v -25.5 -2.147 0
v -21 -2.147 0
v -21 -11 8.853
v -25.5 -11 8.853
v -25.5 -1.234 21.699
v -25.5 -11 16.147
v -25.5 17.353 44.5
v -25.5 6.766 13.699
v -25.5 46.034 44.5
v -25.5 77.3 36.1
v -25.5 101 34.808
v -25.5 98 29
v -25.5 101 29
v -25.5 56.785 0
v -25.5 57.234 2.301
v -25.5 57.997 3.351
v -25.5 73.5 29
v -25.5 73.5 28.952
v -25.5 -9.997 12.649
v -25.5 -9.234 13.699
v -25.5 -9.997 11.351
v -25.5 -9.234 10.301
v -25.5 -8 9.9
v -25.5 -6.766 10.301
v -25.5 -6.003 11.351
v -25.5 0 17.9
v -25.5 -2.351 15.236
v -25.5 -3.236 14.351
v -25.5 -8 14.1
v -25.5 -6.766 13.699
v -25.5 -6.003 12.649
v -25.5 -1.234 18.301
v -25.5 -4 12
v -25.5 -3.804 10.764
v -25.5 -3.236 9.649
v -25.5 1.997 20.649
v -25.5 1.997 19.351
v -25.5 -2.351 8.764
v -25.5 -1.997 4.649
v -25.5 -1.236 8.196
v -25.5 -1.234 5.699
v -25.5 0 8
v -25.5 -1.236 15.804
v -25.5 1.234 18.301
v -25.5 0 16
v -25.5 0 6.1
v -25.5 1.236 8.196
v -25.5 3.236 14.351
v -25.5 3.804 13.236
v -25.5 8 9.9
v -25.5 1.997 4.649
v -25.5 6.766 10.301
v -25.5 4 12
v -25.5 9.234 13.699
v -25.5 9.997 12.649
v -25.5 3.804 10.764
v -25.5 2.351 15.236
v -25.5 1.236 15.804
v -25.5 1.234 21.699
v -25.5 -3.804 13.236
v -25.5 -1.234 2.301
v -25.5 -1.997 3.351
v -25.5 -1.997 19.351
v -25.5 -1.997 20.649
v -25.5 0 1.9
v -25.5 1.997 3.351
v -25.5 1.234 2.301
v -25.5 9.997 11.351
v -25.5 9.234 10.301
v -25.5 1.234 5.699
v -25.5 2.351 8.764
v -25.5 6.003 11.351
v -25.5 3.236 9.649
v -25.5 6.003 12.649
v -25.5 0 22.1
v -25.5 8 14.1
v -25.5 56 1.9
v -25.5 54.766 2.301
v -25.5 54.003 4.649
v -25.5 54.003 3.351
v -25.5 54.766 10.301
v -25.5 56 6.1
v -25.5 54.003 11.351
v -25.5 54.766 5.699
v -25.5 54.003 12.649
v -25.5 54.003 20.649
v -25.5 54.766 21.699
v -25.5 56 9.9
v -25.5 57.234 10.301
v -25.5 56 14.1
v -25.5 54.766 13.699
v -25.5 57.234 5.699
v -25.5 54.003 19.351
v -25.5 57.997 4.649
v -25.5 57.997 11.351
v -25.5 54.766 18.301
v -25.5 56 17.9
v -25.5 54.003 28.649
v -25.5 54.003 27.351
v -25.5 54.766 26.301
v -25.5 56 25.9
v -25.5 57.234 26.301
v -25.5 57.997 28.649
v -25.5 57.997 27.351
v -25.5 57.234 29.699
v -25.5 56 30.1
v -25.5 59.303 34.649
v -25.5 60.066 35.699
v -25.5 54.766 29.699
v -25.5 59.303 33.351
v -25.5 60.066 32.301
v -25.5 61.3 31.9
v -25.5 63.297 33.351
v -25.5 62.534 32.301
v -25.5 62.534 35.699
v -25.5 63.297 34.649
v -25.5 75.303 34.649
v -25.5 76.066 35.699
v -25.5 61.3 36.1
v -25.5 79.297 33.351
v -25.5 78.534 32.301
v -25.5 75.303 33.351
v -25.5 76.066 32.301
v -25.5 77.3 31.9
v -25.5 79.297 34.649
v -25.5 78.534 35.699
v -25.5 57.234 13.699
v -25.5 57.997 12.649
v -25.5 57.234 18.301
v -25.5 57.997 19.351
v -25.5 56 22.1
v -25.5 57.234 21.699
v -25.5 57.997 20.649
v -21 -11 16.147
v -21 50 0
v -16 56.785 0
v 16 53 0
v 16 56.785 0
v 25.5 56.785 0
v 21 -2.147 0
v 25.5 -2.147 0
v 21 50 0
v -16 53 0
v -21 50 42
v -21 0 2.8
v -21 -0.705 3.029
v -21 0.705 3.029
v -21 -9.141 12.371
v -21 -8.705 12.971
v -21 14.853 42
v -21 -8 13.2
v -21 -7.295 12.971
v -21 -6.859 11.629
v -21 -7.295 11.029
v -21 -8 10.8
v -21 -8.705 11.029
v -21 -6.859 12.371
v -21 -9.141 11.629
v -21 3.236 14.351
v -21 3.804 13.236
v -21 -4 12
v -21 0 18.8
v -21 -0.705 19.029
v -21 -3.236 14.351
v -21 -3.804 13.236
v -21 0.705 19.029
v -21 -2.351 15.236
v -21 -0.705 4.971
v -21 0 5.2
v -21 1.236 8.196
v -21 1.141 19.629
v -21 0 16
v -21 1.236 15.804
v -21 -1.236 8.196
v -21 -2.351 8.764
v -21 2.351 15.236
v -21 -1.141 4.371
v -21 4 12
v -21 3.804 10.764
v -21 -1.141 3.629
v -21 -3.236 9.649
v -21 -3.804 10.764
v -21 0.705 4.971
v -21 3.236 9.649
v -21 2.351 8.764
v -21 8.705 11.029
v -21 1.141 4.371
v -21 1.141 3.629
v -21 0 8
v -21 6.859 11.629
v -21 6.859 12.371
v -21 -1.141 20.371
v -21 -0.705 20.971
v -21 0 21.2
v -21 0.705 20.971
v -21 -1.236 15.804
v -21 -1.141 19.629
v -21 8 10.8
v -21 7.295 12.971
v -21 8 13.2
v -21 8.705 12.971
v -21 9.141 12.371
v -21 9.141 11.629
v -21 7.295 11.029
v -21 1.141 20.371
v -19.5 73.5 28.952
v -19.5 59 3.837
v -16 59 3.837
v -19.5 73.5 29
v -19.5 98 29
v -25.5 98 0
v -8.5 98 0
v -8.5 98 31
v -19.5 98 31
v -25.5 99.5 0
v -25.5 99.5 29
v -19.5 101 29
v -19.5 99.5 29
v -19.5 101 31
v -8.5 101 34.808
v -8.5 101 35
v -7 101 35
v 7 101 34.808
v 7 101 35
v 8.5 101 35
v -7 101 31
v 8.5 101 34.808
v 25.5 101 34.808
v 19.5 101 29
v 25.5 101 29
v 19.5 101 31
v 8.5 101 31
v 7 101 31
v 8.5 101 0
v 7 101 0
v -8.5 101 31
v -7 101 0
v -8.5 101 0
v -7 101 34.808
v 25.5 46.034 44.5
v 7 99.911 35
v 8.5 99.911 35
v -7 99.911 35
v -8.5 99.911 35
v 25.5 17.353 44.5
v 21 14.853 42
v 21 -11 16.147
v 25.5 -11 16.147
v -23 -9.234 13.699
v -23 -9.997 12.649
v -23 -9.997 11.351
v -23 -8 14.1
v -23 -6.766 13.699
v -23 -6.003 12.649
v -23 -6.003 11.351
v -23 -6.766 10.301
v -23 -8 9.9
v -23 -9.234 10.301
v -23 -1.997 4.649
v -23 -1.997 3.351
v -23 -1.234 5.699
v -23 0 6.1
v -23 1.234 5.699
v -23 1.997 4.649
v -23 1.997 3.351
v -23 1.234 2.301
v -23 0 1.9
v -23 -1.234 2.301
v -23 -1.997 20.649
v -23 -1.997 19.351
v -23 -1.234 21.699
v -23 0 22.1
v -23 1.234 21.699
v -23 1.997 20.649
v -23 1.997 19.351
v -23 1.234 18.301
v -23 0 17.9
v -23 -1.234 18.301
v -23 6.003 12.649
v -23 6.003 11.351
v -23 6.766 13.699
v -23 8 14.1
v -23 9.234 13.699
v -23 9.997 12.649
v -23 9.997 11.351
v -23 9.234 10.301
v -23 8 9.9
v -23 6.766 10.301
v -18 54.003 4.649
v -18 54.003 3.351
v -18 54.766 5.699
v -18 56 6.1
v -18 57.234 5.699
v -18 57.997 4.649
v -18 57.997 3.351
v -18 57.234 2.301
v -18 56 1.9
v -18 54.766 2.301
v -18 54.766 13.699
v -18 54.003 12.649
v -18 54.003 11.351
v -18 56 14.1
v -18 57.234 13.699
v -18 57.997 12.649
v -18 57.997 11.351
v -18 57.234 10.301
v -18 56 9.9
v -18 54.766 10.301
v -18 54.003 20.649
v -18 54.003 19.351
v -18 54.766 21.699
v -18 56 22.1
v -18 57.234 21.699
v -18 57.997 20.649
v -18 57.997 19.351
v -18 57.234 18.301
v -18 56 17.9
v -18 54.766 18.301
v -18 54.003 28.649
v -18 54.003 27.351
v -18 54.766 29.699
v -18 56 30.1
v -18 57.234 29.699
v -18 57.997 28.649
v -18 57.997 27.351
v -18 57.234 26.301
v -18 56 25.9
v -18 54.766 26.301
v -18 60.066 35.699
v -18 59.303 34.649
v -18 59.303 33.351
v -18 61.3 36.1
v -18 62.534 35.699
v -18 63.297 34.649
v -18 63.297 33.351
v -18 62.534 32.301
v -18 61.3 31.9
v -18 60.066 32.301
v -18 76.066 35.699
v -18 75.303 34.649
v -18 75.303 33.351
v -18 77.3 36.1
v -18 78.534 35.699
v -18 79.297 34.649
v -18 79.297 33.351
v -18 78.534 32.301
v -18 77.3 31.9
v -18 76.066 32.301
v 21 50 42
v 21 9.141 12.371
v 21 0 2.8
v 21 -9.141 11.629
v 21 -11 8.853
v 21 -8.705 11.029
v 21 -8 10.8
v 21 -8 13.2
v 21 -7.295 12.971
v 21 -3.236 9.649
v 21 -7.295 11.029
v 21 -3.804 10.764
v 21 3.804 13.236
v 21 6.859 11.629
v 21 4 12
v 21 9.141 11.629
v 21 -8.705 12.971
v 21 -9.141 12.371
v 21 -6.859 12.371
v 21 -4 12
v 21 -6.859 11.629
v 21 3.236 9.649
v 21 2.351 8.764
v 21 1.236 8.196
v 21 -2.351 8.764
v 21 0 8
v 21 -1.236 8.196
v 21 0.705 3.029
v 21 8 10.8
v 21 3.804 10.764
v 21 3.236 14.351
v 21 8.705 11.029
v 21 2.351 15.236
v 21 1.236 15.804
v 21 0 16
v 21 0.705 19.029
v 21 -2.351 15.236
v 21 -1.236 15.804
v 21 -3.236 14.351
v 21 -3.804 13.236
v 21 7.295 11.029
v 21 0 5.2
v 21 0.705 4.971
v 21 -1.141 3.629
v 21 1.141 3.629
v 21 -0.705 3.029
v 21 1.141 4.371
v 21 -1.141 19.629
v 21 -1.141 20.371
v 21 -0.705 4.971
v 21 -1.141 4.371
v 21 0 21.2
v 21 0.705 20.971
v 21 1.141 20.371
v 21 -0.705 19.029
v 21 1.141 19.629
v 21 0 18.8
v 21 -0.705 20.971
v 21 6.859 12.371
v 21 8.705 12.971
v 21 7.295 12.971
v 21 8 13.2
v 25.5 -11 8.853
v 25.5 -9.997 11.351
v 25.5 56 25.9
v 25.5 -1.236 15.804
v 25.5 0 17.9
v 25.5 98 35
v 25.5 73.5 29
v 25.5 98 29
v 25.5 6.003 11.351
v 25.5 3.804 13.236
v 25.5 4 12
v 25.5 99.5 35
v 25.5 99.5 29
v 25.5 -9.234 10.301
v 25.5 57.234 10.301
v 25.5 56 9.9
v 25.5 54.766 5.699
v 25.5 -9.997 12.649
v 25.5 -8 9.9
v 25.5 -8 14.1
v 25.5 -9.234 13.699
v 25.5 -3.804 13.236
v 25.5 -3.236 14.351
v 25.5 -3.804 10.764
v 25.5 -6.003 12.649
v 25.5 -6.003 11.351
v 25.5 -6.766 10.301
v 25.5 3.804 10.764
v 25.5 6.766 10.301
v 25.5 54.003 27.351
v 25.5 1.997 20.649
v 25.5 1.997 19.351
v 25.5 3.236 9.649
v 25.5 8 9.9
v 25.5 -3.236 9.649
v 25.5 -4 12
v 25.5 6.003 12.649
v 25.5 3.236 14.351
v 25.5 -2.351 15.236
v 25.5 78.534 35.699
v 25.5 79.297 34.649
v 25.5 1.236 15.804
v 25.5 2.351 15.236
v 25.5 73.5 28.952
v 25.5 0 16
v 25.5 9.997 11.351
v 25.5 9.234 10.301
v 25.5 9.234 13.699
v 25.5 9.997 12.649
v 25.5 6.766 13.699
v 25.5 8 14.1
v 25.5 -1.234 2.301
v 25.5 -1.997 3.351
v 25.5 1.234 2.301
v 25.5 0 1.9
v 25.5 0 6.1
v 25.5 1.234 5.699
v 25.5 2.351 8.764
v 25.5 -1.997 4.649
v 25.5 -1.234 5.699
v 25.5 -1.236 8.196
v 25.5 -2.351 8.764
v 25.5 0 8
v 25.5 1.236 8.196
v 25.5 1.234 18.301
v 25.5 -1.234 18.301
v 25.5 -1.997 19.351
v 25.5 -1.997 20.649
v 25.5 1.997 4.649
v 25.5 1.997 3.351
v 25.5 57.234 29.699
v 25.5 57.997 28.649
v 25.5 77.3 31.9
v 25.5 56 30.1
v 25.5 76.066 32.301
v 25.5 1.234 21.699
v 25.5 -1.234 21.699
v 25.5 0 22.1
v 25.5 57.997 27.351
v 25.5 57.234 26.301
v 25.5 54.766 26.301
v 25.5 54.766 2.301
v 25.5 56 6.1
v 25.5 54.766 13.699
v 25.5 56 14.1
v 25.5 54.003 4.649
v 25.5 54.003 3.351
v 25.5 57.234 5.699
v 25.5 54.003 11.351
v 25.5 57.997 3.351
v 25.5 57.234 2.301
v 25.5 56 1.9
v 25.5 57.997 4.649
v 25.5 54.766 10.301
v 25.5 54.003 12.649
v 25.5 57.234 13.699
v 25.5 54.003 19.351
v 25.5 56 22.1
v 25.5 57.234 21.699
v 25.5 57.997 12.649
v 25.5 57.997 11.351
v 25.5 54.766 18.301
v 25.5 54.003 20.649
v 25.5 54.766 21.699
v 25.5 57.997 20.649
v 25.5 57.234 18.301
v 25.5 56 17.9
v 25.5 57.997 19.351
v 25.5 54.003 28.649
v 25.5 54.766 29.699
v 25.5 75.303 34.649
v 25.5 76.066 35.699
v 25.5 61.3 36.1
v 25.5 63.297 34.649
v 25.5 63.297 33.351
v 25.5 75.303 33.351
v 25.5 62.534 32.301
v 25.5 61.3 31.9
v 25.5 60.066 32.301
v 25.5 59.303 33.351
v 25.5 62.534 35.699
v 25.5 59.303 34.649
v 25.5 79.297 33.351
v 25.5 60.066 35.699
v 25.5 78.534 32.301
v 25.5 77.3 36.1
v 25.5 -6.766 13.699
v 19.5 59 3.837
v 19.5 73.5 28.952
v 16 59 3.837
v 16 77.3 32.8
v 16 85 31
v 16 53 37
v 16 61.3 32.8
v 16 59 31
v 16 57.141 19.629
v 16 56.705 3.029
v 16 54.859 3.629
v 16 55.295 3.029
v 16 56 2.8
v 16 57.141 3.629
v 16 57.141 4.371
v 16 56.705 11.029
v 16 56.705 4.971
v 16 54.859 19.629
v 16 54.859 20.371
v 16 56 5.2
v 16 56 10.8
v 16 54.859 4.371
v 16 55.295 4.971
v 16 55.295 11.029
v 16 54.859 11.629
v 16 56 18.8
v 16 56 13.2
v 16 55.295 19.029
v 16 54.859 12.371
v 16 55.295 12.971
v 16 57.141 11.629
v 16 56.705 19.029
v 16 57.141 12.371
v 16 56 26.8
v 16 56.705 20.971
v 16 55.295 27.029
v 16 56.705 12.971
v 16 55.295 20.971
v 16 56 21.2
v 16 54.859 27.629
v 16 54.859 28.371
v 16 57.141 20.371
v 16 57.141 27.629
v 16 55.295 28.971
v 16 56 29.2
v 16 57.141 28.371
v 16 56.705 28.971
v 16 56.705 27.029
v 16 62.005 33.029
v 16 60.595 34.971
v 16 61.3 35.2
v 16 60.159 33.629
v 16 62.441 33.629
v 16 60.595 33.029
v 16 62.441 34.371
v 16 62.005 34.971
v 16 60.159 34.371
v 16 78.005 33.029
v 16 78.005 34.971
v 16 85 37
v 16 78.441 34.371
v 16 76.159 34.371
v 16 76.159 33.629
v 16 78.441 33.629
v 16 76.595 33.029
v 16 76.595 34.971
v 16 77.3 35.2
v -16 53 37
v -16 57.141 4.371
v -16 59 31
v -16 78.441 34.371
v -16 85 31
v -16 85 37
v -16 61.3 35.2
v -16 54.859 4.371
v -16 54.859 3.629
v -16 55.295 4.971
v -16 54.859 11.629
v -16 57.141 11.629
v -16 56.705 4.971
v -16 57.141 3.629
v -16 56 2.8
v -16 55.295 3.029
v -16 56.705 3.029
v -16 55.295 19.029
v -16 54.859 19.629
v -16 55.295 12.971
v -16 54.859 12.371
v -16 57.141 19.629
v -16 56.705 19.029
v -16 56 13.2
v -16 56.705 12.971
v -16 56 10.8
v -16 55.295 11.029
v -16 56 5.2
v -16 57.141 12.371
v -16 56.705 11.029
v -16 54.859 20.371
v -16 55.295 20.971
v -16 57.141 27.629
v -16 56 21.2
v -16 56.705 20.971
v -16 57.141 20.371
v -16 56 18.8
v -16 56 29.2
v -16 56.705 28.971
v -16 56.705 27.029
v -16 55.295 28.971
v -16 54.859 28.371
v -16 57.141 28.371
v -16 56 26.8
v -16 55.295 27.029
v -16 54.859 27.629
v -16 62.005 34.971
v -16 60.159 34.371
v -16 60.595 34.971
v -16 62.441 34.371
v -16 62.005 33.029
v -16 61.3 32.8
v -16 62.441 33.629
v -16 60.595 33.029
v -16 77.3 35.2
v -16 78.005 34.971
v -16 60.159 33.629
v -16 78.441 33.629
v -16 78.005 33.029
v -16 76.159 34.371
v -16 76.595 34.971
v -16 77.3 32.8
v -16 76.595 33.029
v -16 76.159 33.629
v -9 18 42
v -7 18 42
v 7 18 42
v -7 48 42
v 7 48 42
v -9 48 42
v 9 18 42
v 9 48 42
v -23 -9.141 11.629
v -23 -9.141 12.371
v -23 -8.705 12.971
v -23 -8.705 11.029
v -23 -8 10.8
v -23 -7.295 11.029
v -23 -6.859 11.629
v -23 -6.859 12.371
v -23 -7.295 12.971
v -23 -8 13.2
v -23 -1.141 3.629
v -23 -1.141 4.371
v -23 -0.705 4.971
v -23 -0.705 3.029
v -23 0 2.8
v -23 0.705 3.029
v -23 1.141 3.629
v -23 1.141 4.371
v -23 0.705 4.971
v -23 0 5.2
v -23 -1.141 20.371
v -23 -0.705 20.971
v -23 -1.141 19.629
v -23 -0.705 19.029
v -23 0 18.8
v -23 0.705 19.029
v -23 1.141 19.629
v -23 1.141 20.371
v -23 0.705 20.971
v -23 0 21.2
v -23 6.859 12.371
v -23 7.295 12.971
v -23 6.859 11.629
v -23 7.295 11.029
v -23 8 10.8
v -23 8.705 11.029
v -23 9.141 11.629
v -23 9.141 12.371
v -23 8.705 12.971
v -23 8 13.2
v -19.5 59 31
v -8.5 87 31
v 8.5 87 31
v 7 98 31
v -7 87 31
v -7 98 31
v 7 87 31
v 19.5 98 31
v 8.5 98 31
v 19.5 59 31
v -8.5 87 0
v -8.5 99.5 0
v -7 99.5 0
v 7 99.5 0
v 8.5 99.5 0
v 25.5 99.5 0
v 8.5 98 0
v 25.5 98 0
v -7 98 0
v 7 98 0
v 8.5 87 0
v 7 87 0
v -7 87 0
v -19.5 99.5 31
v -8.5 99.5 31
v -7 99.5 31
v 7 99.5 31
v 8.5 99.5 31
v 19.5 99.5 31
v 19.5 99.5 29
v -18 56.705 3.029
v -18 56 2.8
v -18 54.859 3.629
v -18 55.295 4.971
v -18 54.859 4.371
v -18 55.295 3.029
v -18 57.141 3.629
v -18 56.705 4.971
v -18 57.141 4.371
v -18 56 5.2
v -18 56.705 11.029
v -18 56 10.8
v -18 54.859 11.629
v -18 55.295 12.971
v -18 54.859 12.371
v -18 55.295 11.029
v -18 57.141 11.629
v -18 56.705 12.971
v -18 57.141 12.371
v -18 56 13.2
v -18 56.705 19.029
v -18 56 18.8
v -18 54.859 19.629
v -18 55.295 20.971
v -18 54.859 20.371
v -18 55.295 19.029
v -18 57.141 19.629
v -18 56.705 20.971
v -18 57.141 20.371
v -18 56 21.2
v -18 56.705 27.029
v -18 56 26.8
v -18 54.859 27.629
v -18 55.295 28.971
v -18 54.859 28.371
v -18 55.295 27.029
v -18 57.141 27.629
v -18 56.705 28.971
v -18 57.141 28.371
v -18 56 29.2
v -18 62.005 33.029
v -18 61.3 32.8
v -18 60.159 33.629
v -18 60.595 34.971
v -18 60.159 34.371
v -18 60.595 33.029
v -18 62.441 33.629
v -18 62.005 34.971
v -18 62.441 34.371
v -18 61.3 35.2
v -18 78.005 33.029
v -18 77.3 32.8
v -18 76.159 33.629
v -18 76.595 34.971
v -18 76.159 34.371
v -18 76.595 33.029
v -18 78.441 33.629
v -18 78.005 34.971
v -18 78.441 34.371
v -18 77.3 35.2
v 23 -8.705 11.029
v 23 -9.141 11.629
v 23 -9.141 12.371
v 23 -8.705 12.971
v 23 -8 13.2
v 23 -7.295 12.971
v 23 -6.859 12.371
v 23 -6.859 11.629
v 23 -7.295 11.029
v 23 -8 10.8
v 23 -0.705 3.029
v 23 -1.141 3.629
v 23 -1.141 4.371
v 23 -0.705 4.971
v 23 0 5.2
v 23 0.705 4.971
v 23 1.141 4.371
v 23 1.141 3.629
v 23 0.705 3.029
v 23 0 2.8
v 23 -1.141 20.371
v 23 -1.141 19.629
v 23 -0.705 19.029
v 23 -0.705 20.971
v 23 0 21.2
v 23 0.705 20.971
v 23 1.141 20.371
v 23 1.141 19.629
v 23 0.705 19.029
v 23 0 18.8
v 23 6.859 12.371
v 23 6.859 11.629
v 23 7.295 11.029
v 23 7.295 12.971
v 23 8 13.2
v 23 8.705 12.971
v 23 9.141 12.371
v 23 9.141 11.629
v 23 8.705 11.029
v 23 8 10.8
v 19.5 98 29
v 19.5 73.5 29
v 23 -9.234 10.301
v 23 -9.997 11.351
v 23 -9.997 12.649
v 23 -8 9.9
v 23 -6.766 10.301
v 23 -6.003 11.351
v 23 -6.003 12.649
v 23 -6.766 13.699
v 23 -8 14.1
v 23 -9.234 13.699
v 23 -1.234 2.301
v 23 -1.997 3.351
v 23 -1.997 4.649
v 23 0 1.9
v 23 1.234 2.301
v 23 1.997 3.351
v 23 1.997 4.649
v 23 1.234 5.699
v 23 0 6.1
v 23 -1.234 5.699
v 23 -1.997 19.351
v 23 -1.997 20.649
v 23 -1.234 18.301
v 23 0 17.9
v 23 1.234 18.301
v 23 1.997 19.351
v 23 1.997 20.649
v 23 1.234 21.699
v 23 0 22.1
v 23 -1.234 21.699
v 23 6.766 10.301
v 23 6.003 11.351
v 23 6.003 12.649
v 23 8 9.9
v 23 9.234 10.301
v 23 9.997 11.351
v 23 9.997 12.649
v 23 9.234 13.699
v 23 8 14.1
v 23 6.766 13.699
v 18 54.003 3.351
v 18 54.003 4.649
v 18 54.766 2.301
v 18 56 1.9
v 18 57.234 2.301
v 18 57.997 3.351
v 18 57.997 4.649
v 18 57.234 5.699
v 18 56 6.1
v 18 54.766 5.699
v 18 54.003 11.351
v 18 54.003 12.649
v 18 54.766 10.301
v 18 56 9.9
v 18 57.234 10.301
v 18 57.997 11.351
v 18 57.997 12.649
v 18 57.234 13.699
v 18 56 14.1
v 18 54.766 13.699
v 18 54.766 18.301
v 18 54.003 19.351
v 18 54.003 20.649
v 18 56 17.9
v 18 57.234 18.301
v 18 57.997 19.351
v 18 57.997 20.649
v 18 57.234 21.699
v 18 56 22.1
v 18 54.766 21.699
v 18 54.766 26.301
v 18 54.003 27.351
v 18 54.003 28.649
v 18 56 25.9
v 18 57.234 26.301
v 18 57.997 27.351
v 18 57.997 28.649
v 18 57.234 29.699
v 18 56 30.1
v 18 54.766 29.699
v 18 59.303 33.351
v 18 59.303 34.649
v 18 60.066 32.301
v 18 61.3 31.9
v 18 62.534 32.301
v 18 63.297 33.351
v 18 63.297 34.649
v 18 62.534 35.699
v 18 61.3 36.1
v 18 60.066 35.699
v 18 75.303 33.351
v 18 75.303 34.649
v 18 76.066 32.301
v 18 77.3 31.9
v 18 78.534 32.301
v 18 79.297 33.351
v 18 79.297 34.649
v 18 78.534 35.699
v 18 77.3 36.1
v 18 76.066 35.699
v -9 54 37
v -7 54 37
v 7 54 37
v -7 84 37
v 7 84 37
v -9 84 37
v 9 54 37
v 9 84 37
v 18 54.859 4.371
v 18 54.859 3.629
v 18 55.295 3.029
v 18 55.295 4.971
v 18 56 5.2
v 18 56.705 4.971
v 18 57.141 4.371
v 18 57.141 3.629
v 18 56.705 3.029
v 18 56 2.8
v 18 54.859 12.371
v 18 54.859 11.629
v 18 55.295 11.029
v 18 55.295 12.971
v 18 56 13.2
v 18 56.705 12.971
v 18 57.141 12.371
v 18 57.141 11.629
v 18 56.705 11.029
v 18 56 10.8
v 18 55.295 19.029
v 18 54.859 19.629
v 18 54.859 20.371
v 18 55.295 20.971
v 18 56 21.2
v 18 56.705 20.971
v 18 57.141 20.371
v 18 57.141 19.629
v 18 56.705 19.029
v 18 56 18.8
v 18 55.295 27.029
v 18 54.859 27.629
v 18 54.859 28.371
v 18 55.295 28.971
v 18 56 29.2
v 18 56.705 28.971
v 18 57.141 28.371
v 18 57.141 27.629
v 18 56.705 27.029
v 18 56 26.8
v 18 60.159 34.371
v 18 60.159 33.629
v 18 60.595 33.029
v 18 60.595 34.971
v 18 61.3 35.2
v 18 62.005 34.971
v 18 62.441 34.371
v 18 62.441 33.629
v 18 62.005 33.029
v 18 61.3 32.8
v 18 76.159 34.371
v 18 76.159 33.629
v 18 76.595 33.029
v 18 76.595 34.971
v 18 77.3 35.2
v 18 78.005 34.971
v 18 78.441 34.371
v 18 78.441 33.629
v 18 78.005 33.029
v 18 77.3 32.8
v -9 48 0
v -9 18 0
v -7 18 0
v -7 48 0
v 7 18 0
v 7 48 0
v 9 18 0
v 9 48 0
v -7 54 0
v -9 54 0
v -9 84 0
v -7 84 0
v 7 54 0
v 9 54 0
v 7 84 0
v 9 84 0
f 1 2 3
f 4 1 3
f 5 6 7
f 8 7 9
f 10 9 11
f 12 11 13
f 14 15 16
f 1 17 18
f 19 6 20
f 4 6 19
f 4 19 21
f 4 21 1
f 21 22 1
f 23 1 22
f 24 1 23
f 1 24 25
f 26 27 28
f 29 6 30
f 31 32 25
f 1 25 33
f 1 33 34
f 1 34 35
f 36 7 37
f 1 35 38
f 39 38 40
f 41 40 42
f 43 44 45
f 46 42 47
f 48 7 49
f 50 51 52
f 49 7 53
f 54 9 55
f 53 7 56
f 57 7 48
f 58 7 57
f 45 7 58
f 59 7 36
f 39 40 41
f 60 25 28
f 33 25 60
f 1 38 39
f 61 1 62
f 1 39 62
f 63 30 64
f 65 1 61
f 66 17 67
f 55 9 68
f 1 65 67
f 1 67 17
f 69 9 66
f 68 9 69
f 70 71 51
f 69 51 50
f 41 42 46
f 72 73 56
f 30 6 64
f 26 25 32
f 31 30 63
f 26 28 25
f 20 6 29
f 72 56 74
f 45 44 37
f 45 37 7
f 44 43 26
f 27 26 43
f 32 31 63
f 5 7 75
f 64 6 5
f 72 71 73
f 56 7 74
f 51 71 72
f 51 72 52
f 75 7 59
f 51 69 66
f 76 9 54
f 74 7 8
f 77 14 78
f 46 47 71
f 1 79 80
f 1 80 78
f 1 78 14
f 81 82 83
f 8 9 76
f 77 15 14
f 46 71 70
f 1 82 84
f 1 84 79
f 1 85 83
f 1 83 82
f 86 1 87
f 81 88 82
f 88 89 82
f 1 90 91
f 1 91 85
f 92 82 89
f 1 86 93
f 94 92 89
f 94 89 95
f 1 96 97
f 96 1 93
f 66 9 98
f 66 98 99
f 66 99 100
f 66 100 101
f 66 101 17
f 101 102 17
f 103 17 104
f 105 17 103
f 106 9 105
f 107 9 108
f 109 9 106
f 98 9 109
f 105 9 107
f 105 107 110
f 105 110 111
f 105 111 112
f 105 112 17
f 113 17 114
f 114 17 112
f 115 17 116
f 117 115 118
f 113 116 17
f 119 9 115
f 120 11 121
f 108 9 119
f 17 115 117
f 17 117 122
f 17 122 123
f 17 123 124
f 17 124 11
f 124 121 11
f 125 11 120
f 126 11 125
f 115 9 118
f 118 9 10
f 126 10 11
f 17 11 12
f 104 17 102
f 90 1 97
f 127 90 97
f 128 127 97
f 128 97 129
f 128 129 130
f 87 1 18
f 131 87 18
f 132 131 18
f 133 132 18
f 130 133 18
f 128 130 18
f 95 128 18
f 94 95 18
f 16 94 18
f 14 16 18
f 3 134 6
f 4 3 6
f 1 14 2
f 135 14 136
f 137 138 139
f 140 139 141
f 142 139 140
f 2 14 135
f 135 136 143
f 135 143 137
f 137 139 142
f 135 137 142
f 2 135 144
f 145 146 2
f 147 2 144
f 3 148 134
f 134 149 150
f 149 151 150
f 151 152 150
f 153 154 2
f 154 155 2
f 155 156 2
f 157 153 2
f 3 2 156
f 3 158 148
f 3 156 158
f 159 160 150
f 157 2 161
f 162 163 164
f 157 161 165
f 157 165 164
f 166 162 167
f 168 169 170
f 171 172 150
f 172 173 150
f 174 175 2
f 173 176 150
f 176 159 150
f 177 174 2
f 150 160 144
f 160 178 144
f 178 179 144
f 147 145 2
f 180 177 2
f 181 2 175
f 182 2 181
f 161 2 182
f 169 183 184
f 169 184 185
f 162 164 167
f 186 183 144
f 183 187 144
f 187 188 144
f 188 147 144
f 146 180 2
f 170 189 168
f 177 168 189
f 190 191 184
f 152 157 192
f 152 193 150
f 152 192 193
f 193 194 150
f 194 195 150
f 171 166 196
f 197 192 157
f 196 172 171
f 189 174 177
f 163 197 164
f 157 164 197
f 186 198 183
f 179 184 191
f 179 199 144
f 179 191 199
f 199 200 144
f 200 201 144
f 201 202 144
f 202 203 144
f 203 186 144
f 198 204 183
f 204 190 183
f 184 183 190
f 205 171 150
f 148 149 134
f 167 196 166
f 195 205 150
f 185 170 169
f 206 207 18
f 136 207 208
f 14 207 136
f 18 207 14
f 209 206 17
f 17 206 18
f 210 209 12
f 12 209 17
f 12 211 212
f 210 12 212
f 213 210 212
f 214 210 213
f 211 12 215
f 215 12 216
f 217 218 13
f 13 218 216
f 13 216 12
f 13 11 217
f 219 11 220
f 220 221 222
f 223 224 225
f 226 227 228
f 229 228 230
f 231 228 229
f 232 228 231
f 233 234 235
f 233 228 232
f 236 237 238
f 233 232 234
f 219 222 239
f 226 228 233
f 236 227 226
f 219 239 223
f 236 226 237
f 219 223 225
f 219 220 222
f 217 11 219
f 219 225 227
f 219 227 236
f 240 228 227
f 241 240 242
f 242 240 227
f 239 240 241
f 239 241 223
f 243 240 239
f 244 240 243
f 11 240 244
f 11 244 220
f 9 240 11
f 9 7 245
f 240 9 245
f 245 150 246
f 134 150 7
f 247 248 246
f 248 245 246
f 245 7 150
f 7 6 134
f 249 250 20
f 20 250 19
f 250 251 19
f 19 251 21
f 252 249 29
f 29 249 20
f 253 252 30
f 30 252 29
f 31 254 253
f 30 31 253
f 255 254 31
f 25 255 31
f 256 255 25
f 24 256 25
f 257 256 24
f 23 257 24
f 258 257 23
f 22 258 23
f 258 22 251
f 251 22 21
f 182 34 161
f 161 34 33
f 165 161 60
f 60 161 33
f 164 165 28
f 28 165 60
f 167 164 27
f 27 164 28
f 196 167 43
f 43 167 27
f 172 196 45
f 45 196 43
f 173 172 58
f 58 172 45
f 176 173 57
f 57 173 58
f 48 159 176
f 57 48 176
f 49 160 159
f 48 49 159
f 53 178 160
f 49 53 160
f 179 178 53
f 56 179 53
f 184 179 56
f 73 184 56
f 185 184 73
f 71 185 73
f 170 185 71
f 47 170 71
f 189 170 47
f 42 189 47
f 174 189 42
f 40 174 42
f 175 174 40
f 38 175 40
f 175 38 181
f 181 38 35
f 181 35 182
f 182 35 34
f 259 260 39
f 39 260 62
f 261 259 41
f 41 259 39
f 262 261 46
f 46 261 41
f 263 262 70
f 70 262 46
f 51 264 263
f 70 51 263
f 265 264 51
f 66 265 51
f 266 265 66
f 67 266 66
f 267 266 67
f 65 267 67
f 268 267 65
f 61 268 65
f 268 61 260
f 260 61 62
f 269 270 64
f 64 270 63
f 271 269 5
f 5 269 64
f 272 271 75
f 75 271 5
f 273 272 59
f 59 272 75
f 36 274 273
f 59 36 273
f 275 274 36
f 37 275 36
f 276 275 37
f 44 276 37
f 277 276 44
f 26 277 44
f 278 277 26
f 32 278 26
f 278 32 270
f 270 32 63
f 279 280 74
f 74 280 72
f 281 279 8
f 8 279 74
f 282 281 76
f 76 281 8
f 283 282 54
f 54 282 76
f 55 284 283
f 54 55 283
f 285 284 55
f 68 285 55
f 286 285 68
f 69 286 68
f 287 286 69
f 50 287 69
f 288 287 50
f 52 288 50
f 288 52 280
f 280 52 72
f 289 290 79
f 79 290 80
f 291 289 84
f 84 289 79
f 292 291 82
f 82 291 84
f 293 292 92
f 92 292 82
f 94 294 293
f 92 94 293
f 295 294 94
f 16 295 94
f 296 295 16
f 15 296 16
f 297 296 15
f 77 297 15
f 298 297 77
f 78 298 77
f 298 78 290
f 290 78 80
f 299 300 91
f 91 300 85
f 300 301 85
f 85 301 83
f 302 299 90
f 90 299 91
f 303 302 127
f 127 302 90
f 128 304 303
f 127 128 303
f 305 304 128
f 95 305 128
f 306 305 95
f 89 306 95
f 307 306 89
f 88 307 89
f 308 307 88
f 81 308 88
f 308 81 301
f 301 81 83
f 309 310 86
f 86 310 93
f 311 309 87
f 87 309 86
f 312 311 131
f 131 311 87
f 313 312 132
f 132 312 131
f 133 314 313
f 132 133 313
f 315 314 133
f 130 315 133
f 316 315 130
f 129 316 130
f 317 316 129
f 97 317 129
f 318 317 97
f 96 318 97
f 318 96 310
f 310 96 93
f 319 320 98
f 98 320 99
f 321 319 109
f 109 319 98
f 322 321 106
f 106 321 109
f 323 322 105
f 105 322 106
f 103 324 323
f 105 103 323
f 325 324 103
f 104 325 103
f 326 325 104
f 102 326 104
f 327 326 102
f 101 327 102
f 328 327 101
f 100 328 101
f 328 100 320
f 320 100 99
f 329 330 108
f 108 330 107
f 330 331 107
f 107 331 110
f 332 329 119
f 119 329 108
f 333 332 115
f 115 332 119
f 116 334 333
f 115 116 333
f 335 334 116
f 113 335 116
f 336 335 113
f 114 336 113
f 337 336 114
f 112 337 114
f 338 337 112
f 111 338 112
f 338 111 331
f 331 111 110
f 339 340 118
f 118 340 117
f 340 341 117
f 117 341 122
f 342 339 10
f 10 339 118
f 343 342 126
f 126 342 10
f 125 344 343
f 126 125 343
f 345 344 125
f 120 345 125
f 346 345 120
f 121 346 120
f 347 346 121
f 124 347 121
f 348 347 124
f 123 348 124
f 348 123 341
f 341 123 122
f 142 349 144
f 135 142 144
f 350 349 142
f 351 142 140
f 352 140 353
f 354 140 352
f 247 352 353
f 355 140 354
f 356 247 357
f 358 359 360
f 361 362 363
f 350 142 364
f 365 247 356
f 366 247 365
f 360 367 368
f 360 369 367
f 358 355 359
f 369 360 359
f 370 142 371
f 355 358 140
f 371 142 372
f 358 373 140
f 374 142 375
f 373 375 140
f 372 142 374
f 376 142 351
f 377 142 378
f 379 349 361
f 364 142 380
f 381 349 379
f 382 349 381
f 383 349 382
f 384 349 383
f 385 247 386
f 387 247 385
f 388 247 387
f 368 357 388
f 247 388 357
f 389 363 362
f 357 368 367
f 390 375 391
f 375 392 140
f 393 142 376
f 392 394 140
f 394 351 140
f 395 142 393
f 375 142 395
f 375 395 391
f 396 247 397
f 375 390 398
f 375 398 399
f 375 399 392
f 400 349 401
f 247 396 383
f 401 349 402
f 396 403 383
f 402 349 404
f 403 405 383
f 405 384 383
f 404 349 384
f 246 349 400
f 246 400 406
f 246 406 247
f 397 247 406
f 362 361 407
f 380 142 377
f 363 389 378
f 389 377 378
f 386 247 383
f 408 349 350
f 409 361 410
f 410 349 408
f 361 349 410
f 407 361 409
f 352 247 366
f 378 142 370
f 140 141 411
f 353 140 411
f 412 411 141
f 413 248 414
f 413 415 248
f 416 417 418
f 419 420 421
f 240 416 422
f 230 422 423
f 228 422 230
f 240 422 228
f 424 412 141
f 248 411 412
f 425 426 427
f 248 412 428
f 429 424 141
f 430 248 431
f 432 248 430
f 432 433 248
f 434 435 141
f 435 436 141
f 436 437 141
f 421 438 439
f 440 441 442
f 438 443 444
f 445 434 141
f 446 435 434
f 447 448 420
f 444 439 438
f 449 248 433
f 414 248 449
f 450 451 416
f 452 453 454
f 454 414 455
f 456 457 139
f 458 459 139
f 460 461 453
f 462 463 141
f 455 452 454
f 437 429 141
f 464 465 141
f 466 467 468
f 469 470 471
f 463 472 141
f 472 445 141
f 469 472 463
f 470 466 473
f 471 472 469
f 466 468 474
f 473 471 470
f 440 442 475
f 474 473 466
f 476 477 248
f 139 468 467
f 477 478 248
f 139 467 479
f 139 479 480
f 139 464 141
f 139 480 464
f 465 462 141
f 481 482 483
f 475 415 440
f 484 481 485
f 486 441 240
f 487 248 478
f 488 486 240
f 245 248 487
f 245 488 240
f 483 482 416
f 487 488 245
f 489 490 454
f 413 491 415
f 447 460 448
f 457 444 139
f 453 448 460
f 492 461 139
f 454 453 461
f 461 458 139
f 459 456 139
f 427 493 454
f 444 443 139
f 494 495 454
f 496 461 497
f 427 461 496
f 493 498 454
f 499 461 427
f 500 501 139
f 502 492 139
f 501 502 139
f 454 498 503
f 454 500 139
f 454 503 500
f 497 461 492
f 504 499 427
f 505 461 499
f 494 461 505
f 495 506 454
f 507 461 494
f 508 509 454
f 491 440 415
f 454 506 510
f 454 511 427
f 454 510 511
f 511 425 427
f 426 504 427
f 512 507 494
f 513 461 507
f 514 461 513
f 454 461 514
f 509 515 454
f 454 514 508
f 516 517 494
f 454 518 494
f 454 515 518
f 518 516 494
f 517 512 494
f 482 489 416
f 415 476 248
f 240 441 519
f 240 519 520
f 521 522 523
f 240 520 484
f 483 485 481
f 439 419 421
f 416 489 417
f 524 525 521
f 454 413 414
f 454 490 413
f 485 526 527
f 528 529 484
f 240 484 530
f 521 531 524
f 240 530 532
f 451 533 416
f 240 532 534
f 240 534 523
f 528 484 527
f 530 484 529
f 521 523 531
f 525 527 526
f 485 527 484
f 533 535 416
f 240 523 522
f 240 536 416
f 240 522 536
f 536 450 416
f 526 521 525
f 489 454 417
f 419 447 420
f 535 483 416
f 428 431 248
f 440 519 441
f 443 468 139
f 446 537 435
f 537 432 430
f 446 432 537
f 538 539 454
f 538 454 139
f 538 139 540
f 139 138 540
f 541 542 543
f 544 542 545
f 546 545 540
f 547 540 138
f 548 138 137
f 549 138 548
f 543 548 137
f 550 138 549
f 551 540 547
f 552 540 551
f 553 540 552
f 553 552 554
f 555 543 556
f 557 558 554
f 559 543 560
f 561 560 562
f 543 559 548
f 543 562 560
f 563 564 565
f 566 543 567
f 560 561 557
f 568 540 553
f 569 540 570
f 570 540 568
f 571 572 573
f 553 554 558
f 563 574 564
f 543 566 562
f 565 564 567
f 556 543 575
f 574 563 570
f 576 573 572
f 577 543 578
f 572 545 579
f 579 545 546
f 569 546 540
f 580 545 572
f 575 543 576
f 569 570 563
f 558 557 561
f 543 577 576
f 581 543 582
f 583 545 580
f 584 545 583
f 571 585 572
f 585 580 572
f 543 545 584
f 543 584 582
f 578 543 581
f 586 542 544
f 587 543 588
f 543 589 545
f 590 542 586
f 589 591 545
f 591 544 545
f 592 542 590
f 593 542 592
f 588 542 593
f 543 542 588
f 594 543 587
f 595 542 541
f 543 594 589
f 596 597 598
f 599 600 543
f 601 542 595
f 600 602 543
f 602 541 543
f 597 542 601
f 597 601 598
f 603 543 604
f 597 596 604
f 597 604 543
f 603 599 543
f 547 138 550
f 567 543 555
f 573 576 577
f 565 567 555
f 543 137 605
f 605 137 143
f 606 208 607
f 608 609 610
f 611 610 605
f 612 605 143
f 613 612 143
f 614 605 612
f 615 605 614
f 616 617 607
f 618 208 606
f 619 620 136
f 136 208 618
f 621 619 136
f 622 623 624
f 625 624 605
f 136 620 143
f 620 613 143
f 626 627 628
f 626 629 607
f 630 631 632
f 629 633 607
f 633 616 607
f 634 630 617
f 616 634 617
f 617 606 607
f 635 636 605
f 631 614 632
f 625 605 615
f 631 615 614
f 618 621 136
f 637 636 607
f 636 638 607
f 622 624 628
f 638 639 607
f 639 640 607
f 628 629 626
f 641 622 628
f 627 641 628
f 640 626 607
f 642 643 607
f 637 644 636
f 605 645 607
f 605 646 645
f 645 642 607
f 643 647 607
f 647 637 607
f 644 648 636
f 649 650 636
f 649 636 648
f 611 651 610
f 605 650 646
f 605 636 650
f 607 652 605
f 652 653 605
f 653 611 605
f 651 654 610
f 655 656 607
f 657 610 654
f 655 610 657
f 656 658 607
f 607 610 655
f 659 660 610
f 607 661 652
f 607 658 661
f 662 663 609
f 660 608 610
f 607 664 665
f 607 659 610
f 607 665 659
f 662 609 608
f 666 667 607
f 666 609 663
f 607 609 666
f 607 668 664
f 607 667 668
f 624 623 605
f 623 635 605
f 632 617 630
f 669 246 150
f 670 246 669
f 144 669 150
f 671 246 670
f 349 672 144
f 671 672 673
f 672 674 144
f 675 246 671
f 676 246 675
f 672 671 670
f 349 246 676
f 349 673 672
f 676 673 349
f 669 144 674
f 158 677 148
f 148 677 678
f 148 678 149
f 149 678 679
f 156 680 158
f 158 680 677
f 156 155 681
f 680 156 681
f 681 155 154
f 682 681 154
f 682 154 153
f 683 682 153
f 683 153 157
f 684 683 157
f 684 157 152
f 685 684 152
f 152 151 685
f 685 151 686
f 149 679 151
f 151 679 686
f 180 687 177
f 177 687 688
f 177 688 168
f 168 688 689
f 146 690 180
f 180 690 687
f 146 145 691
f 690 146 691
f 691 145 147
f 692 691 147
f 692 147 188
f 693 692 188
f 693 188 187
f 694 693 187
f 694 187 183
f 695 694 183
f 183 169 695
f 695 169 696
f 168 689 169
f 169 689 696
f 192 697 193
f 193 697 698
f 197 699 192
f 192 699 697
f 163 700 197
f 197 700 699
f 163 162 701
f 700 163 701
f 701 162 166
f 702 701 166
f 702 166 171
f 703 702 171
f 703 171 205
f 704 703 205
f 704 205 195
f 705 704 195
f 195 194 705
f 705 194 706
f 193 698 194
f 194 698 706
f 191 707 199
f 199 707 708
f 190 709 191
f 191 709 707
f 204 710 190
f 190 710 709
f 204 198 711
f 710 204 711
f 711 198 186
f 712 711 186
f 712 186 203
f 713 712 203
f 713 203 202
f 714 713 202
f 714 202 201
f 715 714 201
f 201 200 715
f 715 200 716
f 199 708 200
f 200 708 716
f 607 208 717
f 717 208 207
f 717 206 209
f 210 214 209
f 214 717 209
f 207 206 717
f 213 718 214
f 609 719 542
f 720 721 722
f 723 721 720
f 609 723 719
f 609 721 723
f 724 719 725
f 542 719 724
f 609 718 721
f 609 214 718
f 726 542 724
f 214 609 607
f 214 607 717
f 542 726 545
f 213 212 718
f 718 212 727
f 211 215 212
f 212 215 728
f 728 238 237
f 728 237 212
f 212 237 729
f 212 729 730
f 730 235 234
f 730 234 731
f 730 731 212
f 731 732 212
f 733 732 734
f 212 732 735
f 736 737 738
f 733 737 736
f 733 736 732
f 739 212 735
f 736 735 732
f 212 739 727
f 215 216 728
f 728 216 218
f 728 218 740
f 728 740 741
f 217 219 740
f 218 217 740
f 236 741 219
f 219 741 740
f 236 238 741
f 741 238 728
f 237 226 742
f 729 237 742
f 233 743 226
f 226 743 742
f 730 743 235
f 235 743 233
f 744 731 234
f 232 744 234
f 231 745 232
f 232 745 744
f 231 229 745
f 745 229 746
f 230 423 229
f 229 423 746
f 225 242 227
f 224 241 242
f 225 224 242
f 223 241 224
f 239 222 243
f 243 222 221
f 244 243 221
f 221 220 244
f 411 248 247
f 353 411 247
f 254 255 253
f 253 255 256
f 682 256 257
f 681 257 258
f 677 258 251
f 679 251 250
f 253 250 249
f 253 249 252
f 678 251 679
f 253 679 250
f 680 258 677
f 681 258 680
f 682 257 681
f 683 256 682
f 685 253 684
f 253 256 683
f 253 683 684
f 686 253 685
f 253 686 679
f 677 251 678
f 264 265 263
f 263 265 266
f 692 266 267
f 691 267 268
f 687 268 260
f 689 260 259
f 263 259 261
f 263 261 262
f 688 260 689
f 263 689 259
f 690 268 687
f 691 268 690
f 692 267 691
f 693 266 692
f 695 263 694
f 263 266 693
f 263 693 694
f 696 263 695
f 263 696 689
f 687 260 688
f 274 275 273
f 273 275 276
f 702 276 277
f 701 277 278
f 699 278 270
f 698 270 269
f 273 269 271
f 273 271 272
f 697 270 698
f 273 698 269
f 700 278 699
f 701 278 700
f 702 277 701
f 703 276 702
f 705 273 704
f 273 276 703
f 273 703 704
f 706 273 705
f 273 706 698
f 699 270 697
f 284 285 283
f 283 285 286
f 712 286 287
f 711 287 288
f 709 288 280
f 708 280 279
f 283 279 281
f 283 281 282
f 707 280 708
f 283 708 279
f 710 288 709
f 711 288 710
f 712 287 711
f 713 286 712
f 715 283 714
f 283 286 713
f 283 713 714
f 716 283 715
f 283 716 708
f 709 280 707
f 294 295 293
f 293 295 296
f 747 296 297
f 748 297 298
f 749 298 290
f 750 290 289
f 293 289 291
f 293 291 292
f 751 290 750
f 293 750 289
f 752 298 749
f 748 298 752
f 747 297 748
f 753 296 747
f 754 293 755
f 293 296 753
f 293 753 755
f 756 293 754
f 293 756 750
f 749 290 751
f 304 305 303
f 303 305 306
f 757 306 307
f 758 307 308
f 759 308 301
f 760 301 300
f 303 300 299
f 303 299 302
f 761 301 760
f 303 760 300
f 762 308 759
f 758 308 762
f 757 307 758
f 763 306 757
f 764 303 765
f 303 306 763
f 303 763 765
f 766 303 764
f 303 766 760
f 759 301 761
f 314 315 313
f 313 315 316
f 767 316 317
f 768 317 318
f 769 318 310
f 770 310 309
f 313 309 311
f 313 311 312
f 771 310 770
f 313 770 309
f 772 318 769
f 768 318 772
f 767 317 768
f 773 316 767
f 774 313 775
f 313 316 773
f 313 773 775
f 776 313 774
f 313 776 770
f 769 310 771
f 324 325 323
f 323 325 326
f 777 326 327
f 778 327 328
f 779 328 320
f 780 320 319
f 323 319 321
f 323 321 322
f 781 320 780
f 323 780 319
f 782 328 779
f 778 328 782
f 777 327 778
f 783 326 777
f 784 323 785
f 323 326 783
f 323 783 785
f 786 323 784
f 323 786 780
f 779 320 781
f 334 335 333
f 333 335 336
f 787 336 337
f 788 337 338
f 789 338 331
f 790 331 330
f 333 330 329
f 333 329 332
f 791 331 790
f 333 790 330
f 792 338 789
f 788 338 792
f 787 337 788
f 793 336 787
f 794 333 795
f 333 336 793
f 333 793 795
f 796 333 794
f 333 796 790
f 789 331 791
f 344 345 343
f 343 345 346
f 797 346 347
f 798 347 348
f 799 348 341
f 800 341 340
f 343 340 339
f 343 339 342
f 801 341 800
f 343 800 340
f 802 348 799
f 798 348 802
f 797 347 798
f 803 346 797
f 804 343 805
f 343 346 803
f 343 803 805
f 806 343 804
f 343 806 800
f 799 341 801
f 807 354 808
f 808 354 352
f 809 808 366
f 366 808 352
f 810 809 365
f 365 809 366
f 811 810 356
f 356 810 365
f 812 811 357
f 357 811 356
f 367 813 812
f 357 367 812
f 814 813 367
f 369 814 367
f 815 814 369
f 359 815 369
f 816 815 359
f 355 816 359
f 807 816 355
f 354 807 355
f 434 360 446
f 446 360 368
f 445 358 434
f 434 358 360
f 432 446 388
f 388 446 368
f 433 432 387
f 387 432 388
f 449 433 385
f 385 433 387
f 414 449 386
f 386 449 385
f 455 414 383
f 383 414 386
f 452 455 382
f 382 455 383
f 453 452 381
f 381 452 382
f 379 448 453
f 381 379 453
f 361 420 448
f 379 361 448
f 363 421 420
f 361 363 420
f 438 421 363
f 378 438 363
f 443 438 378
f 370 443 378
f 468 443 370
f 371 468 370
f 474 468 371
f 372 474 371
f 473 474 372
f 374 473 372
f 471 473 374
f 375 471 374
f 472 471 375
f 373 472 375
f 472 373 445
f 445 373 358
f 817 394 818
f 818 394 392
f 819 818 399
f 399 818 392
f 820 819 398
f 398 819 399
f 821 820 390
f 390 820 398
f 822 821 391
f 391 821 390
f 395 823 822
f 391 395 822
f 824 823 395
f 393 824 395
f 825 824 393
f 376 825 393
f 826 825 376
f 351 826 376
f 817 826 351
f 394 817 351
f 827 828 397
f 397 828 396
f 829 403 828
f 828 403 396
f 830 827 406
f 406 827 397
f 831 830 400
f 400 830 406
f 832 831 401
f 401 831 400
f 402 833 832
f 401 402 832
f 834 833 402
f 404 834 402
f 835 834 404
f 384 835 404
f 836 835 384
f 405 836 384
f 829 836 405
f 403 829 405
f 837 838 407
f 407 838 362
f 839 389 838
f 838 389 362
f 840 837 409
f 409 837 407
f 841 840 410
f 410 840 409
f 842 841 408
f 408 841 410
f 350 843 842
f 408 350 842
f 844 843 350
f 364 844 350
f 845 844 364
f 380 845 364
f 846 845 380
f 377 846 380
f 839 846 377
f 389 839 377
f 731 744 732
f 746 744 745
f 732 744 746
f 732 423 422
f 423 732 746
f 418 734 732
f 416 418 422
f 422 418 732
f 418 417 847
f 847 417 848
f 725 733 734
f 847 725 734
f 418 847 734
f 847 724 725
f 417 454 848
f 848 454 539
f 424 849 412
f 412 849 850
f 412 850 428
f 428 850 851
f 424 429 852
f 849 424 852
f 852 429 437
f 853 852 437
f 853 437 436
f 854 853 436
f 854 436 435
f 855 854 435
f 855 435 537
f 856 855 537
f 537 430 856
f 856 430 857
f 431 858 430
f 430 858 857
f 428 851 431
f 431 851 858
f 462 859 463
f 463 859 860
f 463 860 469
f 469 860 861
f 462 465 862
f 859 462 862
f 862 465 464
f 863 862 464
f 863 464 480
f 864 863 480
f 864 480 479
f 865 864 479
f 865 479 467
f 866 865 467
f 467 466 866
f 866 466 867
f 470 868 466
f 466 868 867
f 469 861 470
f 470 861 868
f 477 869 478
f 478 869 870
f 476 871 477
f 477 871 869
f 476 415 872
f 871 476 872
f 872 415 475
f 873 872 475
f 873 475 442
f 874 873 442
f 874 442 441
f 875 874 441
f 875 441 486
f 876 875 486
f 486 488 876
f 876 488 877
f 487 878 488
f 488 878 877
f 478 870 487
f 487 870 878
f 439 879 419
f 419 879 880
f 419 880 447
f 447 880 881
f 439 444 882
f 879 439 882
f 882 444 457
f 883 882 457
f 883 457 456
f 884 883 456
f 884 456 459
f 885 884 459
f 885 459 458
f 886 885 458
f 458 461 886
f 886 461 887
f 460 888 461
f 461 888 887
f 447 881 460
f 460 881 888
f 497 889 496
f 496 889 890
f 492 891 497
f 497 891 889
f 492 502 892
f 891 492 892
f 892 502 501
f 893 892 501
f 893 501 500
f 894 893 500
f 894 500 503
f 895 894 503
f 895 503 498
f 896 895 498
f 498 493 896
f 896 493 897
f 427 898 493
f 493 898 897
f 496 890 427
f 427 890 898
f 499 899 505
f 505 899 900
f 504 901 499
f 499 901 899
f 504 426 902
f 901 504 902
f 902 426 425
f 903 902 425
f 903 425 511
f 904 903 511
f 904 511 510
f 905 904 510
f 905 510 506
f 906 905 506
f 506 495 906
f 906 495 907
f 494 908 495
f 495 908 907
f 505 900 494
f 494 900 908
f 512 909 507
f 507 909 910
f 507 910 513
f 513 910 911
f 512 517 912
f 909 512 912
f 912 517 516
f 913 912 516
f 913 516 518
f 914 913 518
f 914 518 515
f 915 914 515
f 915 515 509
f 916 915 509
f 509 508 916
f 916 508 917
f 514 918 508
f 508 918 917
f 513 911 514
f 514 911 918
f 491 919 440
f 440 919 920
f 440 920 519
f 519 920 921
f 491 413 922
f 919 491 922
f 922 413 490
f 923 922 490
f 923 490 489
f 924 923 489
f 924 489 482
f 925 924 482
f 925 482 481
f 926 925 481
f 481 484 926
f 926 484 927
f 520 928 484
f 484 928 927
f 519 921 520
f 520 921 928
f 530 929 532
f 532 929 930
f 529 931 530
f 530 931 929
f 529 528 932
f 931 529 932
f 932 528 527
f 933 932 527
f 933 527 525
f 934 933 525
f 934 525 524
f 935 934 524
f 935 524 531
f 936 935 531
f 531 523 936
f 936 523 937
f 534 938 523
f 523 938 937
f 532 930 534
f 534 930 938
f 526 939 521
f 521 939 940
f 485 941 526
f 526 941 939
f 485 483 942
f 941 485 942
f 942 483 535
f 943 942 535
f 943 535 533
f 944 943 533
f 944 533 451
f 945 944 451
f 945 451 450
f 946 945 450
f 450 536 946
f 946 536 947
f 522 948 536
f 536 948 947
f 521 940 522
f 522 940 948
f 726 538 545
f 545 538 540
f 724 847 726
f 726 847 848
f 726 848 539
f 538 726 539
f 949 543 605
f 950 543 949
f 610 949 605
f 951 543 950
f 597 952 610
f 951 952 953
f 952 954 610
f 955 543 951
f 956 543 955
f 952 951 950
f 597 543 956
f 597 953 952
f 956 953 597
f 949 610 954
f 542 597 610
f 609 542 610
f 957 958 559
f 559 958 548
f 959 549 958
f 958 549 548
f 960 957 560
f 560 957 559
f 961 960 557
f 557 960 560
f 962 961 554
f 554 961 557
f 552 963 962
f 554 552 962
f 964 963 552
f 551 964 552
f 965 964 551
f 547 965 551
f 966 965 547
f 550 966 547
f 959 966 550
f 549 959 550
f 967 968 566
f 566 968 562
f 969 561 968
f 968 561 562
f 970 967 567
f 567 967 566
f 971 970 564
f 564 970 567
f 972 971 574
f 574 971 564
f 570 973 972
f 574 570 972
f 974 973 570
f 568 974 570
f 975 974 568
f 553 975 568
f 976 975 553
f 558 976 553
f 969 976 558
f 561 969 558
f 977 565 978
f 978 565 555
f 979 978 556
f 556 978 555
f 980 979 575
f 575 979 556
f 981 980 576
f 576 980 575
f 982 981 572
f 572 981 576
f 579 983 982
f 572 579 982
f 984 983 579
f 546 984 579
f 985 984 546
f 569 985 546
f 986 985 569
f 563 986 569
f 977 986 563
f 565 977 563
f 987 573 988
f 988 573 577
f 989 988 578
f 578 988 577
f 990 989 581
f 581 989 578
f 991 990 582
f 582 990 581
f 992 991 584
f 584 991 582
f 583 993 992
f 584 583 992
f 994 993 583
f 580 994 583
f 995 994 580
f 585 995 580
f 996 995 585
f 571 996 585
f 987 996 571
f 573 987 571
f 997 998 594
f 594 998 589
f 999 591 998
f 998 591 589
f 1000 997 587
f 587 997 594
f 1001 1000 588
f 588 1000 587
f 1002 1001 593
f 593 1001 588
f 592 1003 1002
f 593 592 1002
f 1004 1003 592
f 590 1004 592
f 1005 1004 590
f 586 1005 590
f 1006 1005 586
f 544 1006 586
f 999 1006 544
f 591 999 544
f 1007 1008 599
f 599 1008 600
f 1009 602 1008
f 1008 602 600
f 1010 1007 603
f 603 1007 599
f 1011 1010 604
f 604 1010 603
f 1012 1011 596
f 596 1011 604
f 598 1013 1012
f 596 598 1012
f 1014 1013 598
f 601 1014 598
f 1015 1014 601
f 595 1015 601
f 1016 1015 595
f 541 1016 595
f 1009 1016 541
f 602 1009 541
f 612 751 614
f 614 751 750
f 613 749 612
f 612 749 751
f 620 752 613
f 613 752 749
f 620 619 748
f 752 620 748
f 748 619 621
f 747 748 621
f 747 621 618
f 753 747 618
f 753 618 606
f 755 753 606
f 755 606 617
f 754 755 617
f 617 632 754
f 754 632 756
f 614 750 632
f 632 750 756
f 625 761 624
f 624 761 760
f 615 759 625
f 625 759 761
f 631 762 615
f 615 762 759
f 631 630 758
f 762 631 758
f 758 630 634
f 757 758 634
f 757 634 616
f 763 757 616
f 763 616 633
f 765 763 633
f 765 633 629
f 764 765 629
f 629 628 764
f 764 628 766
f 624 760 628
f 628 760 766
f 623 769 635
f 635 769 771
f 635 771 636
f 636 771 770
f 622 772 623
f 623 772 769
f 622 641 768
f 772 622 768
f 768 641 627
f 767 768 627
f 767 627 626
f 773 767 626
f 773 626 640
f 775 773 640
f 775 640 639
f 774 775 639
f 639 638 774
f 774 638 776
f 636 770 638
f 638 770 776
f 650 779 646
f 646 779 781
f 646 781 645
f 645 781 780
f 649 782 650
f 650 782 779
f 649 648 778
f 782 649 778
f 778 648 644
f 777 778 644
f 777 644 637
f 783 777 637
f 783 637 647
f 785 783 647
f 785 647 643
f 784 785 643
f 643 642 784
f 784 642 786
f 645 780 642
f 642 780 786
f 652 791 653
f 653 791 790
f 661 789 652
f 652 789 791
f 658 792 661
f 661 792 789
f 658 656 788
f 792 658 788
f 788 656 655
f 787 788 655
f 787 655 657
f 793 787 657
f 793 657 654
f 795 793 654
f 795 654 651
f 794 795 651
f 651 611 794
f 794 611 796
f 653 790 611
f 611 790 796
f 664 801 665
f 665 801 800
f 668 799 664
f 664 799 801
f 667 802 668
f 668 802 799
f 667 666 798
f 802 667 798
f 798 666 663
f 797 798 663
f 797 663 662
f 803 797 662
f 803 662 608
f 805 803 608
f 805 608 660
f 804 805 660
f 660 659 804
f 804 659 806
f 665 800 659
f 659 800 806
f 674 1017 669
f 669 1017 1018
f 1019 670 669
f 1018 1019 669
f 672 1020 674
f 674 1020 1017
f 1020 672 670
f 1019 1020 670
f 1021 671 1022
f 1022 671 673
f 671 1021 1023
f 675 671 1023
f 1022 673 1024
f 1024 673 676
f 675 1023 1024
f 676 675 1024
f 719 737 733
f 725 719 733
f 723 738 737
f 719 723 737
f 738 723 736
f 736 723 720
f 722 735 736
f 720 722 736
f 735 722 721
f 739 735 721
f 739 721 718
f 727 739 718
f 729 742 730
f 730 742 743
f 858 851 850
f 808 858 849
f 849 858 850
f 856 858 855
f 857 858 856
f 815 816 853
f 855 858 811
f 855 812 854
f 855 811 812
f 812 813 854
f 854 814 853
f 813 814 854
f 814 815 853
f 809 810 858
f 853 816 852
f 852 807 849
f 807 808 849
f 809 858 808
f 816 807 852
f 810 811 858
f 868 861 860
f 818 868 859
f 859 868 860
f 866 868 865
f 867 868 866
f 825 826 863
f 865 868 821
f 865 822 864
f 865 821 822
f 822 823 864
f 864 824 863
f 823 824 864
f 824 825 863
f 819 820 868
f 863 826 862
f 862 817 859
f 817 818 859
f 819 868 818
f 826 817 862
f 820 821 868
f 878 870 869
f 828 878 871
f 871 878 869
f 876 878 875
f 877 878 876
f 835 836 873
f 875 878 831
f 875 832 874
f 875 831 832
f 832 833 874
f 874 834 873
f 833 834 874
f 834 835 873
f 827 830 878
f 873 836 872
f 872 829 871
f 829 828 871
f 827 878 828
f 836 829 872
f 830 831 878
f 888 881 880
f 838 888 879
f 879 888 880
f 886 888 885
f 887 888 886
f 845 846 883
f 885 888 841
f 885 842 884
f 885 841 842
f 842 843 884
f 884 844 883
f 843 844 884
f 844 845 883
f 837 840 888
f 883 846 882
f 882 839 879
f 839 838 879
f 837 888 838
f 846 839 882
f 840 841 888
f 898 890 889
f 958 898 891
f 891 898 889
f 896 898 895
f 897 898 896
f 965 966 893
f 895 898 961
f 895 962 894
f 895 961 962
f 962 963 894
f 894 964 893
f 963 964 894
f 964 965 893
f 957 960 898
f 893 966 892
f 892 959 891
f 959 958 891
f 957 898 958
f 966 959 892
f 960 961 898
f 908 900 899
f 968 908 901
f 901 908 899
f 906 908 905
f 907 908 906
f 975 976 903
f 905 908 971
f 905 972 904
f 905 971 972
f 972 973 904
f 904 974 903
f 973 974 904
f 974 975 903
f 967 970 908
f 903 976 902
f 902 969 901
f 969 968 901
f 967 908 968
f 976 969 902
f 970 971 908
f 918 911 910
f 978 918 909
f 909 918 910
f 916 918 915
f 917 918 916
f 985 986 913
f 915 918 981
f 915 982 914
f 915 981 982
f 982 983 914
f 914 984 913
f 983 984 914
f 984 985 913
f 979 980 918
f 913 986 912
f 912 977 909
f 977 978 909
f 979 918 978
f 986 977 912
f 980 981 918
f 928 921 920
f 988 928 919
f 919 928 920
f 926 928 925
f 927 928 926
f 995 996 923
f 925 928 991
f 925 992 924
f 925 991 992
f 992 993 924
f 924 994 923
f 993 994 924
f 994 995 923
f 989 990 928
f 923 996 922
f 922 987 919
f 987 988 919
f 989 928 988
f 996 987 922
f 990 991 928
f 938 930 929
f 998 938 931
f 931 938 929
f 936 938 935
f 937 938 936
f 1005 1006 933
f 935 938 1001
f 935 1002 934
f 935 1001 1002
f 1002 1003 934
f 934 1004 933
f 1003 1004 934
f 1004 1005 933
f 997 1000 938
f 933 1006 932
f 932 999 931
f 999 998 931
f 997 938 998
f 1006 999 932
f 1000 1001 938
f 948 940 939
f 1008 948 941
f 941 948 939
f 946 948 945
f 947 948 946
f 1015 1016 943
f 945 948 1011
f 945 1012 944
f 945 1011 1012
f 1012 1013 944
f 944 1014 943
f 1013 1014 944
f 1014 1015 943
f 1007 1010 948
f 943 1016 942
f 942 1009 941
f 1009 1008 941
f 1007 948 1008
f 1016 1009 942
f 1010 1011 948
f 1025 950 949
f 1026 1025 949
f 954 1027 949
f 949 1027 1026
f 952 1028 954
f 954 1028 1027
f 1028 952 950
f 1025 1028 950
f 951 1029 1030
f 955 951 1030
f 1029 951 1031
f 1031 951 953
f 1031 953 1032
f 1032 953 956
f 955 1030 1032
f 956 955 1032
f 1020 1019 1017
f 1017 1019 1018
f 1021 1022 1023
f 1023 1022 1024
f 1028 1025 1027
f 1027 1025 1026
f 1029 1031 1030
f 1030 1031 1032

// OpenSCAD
espesor=4.5;

module tornillo(d){
	union(){
		rotate([0,90,0])cylinder(r=1.2,h=60,$fn=10);
		translate([-1-d,0,0])rotate([0,90,0])cylinder(r=2.1,h=10,$fn=10);
		translate([51+d,0,0])rotate([0,90,0])cylinder(r=2.1,h=10,$fn=10);


	}
}

module eje(){
	rotate([0,90,0])cylinder(r=4,h=60,$fn=20);
	translate([0,-8,0])tornillo(2);
	translate([0,8,0])tornillo(2);
	translate([0,0,8])tornillo(2);
	translate([0,0,-8])tornillo(2);
}

module agujeros_servo(){
	translate([0,0,-8]) tornillo(-3);
	translate([0,0,0]) tornillo(-3);
	translate([0,0,8]) tornillo(-3);
	translate([0,0,16]) tornillo(-3);
	translate([0,5.3,22]) tornillo(-3);
	translate([0,5.3+16,22]) tornillo(-3);
}

union(){
translate([0,0,12])
difference(){
	translate([-(42+espesor*2)/2,-12,-12])cube([42+espesor*2,113,40+espesor]);
	rotate([-10,0,0])translate([-50,0,40])cube(100);
	translate([-32/2,53,-21])cube([32,32,46]);
	translate([-19.5,59,-19])cube([39,50,38]);
	translate([-42/2,-38,-13])cube([42,44+42+2,43]);
	translate([-30,0,0])eje();
	translate([-30,56,0])agujeros_servo();
	translate([-30,-72,28])rotate([-45,0,0])cube([60,60,80]);
	translate([-30,-72,-27])rotate([-45,0,0])cube([60,60,60]);
	translate([-30,36,-48])rotate([-30,0,0])cube([60,60,75]);
	translate([-30,73.5,-58])rotate([0,0,0])cube([60,60,75]);
	translate([-50,-111,-12])cube(100);
}
//SOPORTES


translate([7,18,0])cube([2,30,43]);
mirror([10,0,0])translate([7,18,0])cube([2,30,43]);

translate([7,54,0])cube([2,30,37]);
mirror([10,0,0])translate([7,54,0])cube([2,30,37]);

translate([7,87,0])cube([1.5,14,35]);
mirror([10,0,0])translate([7,87,0])cube([1.5,14,35]);

translate([25.5,98,0])rotate([0,0,90])cube([1.5,51,35]);



}
